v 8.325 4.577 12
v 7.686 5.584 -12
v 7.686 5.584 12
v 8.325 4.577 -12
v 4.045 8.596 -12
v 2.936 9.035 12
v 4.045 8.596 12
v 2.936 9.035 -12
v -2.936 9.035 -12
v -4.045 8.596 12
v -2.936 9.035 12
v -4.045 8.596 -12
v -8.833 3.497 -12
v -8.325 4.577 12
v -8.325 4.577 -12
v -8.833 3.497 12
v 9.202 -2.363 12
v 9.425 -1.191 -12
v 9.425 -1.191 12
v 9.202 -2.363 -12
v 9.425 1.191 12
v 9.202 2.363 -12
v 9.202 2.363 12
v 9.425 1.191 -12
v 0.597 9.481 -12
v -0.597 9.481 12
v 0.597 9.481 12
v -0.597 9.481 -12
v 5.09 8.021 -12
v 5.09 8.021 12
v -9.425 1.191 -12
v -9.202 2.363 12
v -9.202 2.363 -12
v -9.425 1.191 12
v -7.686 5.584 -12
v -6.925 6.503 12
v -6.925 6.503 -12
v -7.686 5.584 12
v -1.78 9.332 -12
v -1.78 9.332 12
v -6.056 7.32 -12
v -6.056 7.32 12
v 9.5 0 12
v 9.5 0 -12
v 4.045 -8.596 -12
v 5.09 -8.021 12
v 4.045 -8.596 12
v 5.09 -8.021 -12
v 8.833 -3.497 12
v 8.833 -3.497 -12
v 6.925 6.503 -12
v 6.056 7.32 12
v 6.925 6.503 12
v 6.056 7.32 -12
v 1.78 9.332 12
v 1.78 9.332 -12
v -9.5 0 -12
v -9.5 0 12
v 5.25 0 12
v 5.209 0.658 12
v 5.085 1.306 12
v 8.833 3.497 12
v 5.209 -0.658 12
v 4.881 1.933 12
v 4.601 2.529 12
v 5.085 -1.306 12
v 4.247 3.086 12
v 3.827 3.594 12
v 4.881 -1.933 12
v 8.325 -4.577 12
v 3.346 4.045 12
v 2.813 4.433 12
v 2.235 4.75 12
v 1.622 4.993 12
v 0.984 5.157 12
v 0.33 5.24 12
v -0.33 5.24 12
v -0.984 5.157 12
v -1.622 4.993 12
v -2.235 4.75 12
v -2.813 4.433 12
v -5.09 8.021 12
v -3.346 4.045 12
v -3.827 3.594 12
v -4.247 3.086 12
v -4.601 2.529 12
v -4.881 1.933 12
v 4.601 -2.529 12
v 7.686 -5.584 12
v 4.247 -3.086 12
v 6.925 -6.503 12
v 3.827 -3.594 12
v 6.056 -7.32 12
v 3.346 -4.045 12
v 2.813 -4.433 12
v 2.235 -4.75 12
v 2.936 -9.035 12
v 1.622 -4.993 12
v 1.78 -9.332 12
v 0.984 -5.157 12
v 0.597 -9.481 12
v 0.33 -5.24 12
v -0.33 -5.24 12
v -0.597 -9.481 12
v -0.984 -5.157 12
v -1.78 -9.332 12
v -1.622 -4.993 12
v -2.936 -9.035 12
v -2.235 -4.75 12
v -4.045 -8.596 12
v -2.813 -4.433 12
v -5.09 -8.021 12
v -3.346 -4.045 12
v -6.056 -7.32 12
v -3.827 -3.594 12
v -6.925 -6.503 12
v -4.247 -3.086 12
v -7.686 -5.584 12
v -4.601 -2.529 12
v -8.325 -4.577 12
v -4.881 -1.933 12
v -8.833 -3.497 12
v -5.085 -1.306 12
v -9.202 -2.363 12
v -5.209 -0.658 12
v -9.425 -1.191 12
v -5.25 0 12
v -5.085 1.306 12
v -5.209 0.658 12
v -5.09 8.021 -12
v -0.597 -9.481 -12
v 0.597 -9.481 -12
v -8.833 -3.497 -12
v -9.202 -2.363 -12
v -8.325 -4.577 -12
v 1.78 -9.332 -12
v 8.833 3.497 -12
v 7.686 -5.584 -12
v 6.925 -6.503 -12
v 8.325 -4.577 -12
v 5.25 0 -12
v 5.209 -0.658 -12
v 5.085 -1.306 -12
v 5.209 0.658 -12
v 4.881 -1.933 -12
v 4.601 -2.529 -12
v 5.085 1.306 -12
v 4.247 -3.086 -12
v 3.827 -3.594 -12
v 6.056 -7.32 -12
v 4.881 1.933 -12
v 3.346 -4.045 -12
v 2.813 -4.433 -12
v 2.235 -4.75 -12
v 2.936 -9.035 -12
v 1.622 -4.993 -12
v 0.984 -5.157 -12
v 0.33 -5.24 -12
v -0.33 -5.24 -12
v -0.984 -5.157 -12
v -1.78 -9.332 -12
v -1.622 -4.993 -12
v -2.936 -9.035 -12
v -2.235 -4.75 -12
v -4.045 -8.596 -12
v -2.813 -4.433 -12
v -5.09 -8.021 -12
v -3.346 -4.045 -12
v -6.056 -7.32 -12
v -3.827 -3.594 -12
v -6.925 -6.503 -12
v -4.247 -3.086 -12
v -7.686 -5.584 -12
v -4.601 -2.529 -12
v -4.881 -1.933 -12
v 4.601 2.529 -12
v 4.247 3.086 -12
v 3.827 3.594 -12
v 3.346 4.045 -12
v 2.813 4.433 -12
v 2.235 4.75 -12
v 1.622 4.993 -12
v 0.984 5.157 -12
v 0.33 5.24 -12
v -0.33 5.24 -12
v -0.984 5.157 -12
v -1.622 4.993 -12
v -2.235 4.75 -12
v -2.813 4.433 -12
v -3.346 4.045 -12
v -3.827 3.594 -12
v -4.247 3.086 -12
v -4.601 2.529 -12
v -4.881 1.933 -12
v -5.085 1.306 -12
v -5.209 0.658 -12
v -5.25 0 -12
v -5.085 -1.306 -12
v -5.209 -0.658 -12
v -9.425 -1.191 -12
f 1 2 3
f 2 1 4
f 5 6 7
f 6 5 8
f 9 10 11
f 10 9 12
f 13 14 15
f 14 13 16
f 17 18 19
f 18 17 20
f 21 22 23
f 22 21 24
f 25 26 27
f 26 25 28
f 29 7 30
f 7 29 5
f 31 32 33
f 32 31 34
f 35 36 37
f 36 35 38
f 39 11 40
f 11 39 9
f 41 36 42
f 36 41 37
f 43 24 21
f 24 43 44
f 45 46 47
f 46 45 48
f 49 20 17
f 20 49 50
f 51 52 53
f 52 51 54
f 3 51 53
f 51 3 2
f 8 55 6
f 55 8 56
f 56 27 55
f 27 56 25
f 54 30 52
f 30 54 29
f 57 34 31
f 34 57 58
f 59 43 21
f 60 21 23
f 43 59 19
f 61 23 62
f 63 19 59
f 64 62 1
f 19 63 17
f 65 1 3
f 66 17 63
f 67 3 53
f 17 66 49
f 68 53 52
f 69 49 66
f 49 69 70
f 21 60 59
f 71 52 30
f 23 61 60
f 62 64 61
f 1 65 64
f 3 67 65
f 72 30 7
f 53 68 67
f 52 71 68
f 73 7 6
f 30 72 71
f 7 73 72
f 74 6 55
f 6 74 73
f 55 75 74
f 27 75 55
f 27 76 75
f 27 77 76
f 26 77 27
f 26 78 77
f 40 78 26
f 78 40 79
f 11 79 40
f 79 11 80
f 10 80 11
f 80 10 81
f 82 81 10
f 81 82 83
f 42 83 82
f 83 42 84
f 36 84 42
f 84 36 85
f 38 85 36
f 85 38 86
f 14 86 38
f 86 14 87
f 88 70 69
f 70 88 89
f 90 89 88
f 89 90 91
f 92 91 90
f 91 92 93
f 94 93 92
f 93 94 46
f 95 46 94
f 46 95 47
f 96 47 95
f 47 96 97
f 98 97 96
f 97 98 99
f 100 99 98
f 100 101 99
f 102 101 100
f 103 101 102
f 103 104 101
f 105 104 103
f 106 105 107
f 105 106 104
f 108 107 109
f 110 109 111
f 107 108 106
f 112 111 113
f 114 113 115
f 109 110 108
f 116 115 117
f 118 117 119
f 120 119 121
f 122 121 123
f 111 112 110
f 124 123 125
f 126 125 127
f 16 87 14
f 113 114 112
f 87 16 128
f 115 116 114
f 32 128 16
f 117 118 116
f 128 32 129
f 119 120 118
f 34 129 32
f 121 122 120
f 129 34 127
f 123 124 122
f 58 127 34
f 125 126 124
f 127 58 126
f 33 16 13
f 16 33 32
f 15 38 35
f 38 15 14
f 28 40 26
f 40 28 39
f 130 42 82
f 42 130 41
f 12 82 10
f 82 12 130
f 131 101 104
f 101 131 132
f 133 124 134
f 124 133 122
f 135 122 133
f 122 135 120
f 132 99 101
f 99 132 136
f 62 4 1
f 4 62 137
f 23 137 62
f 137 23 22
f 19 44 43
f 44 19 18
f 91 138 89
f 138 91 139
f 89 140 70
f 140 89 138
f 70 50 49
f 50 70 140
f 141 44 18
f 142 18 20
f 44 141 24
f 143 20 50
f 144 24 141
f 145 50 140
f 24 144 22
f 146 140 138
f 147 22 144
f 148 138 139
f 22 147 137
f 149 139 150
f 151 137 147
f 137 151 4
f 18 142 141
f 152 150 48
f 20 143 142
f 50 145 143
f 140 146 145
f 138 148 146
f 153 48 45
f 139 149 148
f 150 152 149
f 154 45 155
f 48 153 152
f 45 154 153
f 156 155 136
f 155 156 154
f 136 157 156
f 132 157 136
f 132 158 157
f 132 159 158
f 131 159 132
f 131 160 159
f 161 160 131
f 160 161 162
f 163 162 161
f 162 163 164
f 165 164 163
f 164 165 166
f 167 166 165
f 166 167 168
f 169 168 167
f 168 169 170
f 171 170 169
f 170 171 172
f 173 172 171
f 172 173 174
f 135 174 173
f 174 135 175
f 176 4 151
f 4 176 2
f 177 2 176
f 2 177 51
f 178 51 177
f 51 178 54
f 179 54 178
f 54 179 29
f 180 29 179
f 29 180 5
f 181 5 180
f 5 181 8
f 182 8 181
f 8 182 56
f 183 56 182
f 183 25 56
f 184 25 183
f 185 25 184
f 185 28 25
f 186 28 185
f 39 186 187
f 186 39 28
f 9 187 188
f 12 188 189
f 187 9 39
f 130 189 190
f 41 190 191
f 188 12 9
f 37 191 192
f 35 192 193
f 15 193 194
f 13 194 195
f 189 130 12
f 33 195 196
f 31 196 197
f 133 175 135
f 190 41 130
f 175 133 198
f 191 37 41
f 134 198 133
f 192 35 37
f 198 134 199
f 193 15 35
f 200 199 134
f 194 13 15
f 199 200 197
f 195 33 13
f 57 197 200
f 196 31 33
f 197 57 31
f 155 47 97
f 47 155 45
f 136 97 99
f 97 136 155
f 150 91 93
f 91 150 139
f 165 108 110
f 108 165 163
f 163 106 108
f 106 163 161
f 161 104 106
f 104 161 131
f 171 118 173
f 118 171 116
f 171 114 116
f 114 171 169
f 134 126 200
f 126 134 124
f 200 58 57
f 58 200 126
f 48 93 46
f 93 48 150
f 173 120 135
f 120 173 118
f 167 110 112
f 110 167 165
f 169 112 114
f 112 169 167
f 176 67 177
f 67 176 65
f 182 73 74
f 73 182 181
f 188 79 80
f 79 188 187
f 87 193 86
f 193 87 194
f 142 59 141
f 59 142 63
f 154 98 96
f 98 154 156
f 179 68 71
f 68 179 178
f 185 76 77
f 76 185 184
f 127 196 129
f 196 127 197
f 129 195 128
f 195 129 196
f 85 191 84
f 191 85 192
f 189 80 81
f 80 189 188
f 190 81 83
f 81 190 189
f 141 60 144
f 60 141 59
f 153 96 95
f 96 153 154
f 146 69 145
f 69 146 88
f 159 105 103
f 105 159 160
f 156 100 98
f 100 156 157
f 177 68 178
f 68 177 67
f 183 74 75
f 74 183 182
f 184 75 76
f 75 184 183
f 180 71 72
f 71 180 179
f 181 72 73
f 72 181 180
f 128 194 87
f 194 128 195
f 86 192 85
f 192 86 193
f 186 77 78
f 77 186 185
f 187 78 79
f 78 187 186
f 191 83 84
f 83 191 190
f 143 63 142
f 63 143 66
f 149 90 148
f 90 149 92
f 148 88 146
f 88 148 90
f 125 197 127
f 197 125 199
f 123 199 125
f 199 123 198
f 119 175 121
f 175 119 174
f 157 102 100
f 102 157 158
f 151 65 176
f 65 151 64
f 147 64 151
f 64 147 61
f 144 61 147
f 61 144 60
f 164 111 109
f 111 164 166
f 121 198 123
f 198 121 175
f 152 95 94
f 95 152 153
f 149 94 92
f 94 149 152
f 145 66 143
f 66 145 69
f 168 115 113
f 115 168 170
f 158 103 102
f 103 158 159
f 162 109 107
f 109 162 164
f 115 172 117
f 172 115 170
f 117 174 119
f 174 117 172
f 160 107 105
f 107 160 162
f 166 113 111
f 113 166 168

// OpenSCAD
$fn = 50;


difference() {
	union() {
		translate(v = [0, 0, -12.0000000000]) {
			cylinder(h = 24, r = 9.5000000000);
		}
	}
	union() {
		translate(v = [0, 0, -100.0000000000]) {
			cylinder(h = 200, r = 5.2500000000);
		}
	}
}
